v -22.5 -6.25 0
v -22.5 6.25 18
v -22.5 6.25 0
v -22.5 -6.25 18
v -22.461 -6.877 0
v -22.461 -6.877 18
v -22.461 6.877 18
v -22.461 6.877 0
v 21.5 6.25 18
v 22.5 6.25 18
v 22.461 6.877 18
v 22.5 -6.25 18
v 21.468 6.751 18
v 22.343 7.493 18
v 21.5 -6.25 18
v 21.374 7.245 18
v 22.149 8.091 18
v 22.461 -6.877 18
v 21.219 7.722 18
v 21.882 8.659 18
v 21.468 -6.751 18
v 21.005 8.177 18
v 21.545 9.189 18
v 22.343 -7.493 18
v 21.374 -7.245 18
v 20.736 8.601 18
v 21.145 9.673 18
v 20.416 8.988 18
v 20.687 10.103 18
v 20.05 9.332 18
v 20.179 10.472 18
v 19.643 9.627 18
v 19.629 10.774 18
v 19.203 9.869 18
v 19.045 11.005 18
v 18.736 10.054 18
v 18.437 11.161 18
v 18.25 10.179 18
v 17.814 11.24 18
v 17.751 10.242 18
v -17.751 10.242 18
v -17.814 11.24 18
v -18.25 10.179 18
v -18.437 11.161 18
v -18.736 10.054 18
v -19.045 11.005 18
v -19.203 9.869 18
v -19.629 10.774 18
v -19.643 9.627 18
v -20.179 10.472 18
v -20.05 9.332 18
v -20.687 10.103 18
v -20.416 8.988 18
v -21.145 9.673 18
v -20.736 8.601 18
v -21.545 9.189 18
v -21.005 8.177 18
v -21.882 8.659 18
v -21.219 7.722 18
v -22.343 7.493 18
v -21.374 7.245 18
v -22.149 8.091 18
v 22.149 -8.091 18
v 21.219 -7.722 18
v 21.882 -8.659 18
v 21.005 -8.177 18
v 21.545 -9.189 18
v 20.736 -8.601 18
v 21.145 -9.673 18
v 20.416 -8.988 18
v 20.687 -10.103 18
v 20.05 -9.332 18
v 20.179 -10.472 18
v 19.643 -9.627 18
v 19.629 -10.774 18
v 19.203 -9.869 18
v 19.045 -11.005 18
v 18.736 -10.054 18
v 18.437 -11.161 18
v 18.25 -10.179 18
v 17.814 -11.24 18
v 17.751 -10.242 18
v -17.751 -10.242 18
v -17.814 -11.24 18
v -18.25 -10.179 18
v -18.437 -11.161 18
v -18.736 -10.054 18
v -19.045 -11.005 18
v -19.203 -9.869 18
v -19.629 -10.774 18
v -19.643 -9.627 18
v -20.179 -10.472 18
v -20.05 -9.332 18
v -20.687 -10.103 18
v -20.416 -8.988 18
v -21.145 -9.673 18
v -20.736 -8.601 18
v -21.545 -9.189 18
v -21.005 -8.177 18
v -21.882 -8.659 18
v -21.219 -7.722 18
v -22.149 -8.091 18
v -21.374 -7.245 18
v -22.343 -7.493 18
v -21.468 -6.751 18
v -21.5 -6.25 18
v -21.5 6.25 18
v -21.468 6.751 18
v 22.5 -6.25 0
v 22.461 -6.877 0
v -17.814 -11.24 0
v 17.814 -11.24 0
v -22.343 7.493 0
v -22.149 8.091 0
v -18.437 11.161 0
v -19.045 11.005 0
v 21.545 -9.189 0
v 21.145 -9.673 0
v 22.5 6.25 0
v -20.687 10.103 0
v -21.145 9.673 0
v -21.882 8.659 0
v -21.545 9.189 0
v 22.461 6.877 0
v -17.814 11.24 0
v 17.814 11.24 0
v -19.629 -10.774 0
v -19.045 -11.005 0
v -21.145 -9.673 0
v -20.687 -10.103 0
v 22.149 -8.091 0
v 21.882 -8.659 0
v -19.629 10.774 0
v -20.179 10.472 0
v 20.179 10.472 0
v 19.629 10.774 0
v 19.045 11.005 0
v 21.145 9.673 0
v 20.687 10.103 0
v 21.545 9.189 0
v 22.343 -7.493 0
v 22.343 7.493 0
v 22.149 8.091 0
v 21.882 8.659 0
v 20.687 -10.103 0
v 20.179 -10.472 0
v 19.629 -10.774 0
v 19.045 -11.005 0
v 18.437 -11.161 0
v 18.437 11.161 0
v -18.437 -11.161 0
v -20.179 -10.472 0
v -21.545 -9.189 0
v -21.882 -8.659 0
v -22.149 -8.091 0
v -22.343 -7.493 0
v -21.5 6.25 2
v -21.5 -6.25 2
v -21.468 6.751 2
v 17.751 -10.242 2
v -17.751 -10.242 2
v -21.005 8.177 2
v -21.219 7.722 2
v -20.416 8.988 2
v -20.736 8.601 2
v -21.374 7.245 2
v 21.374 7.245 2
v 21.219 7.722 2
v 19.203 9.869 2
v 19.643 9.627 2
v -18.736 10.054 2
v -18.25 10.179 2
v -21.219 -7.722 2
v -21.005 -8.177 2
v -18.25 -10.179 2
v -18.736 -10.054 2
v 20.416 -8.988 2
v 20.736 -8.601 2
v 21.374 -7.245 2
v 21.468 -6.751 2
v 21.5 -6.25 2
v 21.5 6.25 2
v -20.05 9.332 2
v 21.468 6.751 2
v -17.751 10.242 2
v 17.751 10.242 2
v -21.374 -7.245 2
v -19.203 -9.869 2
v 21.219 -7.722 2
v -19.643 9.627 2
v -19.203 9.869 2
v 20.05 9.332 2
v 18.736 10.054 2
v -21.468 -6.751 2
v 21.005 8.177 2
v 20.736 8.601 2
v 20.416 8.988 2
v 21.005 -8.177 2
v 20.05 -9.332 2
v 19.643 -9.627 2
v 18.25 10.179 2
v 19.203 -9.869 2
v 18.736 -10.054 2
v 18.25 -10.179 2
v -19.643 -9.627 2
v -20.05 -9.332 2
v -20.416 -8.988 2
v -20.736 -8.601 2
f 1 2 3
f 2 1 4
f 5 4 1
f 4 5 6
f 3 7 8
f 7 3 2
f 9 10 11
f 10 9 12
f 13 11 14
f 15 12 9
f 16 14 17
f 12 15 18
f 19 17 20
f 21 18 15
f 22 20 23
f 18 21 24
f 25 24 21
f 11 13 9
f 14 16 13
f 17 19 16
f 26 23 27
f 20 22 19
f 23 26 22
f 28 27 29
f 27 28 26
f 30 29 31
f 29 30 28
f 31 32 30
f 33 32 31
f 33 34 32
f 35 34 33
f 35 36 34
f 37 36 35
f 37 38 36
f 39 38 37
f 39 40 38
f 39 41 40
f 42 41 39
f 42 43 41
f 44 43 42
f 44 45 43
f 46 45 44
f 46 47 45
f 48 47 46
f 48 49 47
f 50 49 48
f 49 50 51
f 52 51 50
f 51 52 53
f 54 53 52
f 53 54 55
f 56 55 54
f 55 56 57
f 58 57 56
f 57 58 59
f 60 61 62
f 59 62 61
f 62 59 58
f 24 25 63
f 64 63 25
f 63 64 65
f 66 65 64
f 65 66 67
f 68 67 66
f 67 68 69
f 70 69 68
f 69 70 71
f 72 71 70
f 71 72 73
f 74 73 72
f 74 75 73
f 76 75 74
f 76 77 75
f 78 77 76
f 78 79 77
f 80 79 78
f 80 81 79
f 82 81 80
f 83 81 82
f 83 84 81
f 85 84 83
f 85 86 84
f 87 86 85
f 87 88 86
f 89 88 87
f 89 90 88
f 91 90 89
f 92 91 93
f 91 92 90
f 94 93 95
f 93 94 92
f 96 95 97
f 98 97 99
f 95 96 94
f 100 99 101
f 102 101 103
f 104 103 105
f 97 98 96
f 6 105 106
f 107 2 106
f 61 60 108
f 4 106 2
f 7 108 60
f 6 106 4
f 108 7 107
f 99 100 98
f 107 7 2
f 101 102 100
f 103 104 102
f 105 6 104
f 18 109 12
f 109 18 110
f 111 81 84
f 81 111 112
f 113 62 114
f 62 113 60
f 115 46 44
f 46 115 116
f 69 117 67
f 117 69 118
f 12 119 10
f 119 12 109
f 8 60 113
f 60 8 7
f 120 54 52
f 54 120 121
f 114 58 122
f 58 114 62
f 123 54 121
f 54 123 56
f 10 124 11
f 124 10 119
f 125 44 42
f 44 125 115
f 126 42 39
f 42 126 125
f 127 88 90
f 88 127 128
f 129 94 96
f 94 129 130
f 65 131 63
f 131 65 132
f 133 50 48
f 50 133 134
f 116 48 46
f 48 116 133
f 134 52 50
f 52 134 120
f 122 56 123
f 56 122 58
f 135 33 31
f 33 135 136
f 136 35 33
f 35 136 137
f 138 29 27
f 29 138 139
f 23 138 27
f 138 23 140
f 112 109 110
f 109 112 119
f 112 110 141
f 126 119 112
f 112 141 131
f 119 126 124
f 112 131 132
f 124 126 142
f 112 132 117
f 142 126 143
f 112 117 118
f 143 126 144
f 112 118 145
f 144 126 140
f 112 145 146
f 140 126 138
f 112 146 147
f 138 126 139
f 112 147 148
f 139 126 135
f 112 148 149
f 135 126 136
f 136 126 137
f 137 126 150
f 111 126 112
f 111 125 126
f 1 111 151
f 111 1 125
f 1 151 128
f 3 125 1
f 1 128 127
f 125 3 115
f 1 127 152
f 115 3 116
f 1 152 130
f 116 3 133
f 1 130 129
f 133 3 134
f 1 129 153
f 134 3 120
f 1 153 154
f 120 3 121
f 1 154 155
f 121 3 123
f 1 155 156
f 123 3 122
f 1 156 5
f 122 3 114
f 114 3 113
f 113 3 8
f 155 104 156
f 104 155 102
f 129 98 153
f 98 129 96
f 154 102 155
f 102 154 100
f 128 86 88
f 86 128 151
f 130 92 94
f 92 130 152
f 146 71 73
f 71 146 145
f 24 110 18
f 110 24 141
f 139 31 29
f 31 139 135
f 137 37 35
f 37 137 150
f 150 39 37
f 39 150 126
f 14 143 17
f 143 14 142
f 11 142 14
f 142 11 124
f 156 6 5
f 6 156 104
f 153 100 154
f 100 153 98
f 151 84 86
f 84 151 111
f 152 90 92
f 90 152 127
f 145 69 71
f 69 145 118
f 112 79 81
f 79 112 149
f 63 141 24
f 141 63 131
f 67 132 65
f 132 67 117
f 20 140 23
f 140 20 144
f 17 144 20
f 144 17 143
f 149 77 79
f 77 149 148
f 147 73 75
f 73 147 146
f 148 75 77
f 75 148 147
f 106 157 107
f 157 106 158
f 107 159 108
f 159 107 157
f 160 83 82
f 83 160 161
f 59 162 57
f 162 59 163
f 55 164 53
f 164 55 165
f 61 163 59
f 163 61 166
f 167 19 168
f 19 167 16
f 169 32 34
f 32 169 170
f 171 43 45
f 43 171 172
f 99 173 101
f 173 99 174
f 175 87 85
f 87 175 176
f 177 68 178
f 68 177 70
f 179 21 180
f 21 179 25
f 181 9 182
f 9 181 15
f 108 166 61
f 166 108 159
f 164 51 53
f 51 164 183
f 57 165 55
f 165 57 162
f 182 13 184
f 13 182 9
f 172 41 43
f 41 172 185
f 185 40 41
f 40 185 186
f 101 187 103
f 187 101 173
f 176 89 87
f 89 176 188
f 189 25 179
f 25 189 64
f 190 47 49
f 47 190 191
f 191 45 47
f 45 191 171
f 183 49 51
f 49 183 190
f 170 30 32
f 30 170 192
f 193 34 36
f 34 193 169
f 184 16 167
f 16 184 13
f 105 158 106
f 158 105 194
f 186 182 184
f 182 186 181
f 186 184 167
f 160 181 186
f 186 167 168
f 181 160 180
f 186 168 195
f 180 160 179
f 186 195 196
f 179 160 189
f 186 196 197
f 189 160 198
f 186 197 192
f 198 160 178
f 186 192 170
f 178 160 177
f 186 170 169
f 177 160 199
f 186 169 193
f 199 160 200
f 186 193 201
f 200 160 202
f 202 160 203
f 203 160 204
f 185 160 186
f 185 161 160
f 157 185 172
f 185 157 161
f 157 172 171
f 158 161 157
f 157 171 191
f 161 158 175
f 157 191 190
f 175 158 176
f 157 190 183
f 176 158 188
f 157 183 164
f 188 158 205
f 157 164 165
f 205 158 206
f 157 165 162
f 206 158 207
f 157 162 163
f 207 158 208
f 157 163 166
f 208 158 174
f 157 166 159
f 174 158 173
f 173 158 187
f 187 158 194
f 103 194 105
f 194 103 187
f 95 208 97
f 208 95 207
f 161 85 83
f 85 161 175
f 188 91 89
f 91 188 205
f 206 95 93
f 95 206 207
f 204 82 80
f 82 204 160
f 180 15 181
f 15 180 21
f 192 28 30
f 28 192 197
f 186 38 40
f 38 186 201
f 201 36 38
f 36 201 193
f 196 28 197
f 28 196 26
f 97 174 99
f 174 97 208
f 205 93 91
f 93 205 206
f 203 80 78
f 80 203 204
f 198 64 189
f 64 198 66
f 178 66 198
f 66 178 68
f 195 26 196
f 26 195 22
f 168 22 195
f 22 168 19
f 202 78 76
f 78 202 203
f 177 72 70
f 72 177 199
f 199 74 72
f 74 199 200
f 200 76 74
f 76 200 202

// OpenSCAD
$fn = 50;


difference() {
	union() {
		hull() {
			translate(v = [-17.5000000000, 6.2500000000, 0]) {
				cylinder(h = 18, r = 5);
			}
			translate(v = [17.5000000000, 6.2500000000, 0]) {
				cylinder(h = 18, r = 5);
			}
			translate(v = [-17.5000000000, -6.2500000000, 0]) {
				cylinder(h = 18, r = 5);
			}
			translate(v = [17.5000000000, -6.2500000000, 0]) {
				cylinder(h = 18, r = 5);
			}
		}
	}
	union() {
		translate(v = [0, 0, 2]) {
			hull() {
				translate(v = [-17.5000000000, 6.2500000000, 0]) {
					cylinder(h = 16, r = 4);
				}
				translate(v = [17.5000000000, 6.2500000000, 0]) {
					cylinder(h = 16, r = 4);
				}
				translate(v = [-17.5000000000, -6.2500000000, 0]) {
					cylinder(h = 16, r = 4);
				}
				translate(v = [17.5000000000, -6.2500000000, 0]) {
					cylinder(h = 16, r = 4);
				}
			}
		}
	}
}
